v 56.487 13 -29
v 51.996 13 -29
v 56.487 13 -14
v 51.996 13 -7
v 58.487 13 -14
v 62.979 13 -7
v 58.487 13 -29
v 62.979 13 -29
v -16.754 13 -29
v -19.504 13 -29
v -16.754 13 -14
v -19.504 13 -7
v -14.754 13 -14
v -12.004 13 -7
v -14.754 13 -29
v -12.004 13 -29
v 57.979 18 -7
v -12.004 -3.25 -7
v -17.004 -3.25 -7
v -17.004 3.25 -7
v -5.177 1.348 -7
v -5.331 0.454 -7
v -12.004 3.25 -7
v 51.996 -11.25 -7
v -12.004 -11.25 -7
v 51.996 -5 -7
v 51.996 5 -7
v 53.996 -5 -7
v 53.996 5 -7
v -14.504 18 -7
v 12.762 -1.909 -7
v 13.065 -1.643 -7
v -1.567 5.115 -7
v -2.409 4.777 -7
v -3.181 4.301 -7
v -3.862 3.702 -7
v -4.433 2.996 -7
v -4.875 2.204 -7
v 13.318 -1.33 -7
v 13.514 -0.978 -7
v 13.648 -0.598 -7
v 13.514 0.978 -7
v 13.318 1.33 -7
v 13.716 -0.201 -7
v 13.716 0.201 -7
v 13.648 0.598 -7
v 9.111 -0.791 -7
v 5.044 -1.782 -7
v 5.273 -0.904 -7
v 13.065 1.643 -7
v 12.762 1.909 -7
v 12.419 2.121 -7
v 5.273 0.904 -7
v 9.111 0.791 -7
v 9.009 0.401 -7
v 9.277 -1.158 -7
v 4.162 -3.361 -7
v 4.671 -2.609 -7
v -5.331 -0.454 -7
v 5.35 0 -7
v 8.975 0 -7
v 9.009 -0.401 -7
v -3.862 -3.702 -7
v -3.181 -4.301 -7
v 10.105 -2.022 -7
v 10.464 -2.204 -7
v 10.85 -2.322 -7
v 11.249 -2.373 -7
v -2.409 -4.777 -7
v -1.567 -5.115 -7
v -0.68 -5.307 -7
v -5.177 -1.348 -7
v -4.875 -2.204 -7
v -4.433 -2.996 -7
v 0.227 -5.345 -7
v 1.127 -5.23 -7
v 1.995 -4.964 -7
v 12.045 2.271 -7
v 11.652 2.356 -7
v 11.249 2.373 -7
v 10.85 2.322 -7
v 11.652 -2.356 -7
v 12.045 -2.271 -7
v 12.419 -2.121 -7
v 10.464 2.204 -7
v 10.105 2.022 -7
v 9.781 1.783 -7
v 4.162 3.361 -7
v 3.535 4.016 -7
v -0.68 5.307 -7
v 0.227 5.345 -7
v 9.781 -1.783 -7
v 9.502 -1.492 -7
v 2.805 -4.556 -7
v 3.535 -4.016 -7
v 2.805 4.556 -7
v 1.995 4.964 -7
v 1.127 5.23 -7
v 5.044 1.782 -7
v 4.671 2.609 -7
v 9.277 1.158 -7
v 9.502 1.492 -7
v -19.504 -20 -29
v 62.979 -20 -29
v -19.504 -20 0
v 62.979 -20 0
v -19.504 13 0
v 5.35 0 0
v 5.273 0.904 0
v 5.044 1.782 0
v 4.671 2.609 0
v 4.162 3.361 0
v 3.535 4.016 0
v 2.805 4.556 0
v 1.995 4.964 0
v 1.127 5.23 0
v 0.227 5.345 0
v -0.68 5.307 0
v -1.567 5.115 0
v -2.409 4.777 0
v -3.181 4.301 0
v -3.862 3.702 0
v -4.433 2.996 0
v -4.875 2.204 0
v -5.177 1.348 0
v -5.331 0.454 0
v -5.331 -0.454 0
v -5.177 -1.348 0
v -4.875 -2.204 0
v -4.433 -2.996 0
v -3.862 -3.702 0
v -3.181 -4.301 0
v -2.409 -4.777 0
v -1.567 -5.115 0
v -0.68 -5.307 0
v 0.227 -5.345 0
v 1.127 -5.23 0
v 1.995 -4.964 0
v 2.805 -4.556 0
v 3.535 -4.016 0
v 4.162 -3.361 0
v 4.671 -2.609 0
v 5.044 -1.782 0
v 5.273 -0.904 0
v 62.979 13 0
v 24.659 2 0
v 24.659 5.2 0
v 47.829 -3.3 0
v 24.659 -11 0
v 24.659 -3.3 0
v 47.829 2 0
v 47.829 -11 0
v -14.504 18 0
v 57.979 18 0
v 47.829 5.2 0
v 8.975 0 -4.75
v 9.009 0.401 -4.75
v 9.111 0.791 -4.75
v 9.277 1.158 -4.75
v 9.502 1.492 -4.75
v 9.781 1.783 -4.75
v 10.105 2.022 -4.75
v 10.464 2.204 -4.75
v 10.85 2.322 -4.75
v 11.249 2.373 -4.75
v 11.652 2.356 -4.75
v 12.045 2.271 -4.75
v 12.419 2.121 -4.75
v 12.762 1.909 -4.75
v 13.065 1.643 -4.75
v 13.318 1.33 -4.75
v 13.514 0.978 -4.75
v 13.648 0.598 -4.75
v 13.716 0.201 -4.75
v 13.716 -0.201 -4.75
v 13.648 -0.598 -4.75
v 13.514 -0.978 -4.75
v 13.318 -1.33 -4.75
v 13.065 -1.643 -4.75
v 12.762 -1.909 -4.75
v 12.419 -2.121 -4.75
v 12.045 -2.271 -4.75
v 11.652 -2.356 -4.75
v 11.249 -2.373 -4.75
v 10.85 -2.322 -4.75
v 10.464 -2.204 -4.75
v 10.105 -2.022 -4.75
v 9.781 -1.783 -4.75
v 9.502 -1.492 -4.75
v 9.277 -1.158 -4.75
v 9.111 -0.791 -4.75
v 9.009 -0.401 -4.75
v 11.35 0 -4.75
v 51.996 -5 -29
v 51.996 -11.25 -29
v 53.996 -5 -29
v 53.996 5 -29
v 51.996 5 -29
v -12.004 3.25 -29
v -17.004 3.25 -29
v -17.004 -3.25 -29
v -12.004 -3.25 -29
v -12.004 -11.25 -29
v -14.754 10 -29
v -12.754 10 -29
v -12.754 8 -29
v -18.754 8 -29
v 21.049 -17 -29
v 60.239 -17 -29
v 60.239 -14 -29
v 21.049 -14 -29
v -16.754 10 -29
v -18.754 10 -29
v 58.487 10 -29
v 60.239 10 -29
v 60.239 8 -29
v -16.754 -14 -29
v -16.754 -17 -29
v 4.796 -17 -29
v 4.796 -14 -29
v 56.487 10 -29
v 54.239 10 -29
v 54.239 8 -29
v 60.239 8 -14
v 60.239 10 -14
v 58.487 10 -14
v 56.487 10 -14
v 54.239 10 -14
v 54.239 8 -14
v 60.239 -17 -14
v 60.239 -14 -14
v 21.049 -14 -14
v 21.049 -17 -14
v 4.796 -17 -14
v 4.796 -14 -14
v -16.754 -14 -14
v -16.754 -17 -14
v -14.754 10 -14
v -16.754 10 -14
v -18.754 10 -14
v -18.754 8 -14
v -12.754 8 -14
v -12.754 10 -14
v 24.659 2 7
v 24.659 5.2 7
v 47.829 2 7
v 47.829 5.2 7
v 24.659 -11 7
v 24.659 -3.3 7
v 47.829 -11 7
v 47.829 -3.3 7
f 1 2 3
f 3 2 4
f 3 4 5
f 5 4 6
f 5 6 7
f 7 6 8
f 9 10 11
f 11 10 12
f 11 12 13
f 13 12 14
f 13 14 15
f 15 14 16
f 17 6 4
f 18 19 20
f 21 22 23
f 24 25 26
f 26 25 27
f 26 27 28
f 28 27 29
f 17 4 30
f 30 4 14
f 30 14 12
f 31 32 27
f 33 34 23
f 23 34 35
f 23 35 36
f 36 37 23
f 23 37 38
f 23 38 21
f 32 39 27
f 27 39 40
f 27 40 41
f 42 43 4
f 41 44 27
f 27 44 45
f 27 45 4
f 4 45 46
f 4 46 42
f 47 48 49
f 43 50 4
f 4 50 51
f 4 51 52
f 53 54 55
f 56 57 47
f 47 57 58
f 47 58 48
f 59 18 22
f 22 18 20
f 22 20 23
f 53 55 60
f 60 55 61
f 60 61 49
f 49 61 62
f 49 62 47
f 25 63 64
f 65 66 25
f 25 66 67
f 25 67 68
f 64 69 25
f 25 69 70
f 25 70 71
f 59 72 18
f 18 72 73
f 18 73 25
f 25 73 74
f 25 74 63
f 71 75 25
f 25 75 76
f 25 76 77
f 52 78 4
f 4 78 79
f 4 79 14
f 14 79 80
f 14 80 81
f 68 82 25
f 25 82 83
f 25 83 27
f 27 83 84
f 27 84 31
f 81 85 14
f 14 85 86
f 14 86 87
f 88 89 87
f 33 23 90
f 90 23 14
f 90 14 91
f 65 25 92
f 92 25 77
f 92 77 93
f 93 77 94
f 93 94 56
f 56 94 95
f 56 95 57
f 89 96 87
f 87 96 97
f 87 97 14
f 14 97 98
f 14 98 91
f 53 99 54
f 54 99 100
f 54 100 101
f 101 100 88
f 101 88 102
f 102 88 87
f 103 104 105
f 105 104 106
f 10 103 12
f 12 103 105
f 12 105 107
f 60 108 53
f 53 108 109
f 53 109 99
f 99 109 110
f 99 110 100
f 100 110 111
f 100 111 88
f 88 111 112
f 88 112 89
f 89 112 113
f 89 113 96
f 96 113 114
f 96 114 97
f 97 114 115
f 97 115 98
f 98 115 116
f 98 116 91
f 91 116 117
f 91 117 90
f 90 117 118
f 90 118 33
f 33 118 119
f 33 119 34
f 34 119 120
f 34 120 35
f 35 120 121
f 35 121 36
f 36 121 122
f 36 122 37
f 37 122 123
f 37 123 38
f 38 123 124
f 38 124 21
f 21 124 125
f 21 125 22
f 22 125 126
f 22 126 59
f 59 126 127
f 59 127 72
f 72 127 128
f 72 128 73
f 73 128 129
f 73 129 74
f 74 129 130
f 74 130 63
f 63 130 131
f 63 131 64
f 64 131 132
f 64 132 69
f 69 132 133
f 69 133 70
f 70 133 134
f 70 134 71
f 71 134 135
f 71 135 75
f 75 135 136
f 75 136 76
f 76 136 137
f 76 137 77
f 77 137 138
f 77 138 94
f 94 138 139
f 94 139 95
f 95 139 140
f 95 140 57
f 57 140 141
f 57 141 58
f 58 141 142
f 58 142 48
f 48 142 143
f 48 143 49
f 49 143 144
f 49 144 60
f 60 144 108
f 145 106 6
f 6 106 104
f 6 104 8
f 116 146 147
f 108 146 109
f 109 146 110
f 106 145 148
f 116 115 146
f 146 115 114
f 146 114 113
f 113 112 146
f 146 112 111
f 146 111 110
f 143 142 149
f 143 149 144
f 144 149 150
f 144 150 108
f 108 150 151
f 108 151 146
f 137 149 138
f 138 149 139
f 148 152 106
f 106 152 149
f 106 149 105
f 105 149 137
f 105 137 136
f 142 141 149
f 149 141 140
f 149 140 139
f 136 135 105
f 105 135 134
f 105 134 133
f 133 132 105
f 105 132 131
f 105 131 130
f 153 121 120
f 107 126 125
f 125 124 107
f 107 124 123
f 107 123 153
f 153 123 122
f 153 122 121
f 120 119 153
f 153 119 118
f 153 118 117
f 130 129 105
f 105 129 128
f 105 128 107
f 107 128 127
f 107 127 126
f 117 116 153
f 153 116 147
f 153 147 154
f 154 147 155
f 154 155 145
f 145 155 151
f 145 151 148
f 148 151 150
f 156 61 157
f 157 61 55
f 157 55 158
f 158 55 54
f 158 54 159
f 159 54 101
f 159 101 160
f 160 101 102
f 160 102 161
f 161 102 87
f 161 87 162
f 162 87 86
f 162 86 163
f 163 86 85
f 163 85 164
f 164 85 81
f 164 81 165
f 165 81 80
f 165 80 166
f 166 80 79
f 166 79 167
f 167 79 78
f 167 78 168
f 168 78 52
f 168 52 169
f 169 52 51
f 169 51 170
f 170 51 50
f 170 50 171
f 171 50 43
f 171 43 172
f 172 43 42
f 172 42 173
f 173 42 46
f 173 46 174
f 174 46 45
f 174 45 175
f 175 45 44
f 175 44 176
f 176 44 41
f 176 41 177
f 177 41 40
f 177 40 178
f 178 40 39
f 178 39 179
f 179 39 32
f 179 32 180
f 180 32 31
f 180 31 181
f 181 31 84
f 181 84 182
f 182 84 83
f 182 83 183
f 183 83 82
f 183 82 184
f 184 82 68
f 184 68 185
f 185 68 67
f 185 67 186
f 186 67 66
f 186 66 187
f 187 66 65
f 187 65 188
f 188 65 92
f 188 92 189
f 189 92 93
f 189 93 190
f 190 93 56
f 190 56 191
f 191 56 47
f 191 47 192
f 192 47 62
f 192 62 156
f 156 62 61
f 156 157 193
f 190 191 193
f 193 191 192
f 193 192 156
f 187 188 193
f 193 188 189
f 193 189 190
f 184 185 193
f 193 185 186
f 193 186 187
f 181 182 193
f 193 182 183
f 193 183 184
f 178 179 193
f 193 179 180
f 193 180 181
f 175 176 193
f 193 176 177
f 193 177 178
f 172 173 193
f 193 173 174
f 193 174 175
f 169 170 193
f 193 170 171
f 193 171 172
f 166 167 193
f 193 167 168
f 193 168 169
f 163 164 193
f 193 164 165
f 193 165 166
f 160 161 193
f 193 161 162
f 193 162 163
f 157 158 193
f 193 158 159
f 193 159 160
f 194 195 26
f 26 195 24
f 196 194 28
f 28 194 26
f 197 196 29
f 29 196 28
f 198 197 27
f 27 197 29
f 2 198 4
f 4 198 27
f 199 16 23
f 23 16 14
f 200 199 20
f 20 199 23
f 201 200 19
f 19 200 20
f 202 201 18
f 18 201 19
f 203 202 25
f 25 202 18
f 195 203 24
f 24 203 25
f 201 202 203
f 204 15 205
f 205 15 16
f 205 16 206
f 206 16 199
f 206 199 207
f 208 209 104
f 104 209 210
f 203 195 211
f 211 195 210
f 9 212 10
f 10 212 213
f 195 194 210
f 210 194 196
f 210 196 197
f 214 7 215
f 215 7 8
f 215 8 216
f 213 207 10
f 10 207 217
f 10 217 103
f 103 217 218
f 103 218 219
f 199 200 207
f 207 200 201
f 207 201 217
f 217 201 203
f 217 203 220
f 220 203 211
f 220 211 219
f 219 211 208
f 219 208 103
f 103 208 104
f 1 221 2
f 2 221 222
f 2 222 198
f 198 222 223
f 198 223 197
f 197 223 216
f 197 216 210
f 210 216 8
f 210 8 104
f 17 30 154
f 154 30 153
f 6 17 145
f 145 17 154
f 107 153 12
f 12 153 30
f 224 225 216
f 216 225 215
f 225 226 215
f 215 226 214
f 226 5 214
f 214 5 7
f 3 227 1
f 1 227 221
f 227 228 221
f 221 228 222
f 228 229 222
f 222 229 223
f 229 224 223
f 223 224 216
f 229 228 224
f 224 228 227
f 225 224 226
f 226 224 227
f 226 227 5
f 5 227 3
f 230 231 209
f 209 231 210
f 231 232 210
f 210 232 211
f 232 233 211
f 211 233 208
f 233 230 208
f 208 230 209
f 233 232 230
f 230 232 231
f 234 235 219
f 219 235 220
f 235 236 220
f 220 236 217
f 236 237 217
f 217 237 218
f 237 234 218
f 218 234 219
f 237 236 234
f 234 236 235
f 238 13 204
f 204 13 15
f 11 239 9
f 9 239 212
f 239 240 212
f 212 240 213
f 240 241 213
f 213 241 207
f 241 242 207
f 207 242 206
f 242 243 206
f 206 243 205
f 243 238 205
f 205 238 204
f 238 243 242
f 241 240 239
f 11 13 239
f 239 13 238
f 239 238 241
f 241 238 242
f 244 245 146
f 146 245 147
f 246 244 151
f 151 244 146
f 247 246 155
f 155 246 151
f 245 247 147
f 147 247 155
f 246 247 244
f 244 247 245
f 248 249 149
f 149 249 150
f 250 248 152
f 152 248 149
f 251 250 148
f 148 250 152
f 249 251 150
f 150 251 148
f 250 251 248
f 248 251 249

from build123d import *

# Parameters (mm, degrees)
SKETCH1_R           = 5.35
BOSS_EXTRUDE2_DEPTH = 7
SKETCH8_R           = 2.375
CUT_EXTRUDE2_DEPTH  = 2.25
BOSS_EXTRUDE3_DEPTH = 22
SKETCH10_W          = 82.482524805
SKETCH10_H          = 7
BOSS_EXTRUDE4_DEPTH = 5
CHAMFER1_SIZE       = 5
SKETCH11_W          = 39.19
SKETCH11_H          = 3
SKETCH11_W_2        = 21.55
CUT_EXTRUDE3_DEPTH  = 15
SKETCH12_W          = 23.17
SKETCH12_H          = 7.7
SKETCH12_H_2        = 3.2
BOSS_EXTRUDE5_DEPTH = 7


with BuildPart() as part:
    # Sketch1 → Boss-Extrude2 (new body)
    with BuildSketch(Plane.XY):
        Polygon((-19.503784034, 13), (-19.503784034, -20), (19.503784034, -20), (62.978740771, -20), (62.978740771, 13), (19.503784034, 13), align=None)
        Circle(SKETCH1_R, mode=Mode.SUBTRACT)
    extrude(amount=-BOSS_EXTRUDE2_DEPTH)

    # Sketch8 → Cut-Extrude2 (cut)
    with BuildSketch(Plane(origin=(0, 0, -7), x_dir=(-1, 0, 0), z_dir=(0, 0, -1))):
        with Locations((-11.35, 0)):
            Circle(SKETCH8_R)
    extrude(amount=-CUT_EXTRUDE2_DEPTH, mode=Mode.SUBTRACT)

    # Sketch9 → Boss-Extrude3 (add)
    with BuildSketch(Plane(origin=(0, 0, -7), x_dir=(-1, 0, 0), z_dir=(0, 0, -1))):
        Polygon((12.003784034, 3.25), (12.003784034, 13), (19.503784034, 13), (19.503784034, -12.662545792), (19.503784034, -20), (-56.5, -20), (-62.978740771, -20), (-62.978740771, 13), (-51.996215966, 13), (-51.996215966, 5), (-53.996215966, 5), (-53.996215966, -5), (-51.996215966, -5), (-51.996215966, -11.25), (12.003784034, -11.25), (12.003784034, -3.25), (17.003784034, -3.25), (17.003784034, 3.25), align=None)
    extrude(amount=BOSS_EXTRUDE3_DEPTH)

    # Sketch10 → Boss-Extrude4 (add)
    with BuildSketch(Plane(origin=(0, 13, 0), x_dir=(1, 0, 0), z_dir=(0, 1, 0))):
        with Locations((21.737478368, 3.5)):
            Rectangle(SKETCH10_W, SKETCH10_H)
    extrude(amount=BOSS_EXTRUDE4_DEPTH)

    # Chamfer1
    chamfer1_edges = [part.edges().sort_by_distance(p)[0] for p in [
        (62.978740771, 18, -3.5),
        (-19.503784034, 18, -3.5),
    ]]
    chamfer(chamfer1_edges, length=CHAMFER1_SIZE)

    # Sketch11 → Cut-Extrude3 (cut)
    with BuildSketch(Plane(origin=(0, 0, -29), x_dir=(-1, 0, 0), z_dir=(0, 0, -1))):
        Polygon((-60.239370385, 10), (-58.487478368, 10), (-58.487478368, 13), (-56.487478368, 13), (-56.487478368, 10), (-54.239370385, 10), (-54.239370385, 8), (-60.239370385, 8), align=None)
        with Locations((-40.644370385, -15.5)):
            Rectangle(SKETCH11_W, SKETCH11_H)
        with Locations((5.978784034, -15.5)):
            Rectangle(SKETCH11_W_2, SKETCH11_H)
        Polygon((14.753784034, 13), (16.753784034, 13), (16.753784034, 10), (18.753784034, 10), (18.753784034, 8), (12.753784034, 8), (12.753784034, 10), (14.753784034, 10), align=None)
    extrude(amount=-CUT_EXTRUDE3_DEPTH, mode=Mode.SUBTRACT)

    # Sketch12 → Boss-Extrude5 (add)
    with BuildSketch(Plane.XY):
        with Locations((36.243740771, -7.15)):
            Rectangle(SKETCH12_W, SKETCH12_H)
        with Locations((36.243740771, 3.6)):
            Rectangle(SKETCH12_W, SKETCH12_H_2)
    extrude(amount=BOSS_EXTRUDE5_DEPTH)


solid = part.part
